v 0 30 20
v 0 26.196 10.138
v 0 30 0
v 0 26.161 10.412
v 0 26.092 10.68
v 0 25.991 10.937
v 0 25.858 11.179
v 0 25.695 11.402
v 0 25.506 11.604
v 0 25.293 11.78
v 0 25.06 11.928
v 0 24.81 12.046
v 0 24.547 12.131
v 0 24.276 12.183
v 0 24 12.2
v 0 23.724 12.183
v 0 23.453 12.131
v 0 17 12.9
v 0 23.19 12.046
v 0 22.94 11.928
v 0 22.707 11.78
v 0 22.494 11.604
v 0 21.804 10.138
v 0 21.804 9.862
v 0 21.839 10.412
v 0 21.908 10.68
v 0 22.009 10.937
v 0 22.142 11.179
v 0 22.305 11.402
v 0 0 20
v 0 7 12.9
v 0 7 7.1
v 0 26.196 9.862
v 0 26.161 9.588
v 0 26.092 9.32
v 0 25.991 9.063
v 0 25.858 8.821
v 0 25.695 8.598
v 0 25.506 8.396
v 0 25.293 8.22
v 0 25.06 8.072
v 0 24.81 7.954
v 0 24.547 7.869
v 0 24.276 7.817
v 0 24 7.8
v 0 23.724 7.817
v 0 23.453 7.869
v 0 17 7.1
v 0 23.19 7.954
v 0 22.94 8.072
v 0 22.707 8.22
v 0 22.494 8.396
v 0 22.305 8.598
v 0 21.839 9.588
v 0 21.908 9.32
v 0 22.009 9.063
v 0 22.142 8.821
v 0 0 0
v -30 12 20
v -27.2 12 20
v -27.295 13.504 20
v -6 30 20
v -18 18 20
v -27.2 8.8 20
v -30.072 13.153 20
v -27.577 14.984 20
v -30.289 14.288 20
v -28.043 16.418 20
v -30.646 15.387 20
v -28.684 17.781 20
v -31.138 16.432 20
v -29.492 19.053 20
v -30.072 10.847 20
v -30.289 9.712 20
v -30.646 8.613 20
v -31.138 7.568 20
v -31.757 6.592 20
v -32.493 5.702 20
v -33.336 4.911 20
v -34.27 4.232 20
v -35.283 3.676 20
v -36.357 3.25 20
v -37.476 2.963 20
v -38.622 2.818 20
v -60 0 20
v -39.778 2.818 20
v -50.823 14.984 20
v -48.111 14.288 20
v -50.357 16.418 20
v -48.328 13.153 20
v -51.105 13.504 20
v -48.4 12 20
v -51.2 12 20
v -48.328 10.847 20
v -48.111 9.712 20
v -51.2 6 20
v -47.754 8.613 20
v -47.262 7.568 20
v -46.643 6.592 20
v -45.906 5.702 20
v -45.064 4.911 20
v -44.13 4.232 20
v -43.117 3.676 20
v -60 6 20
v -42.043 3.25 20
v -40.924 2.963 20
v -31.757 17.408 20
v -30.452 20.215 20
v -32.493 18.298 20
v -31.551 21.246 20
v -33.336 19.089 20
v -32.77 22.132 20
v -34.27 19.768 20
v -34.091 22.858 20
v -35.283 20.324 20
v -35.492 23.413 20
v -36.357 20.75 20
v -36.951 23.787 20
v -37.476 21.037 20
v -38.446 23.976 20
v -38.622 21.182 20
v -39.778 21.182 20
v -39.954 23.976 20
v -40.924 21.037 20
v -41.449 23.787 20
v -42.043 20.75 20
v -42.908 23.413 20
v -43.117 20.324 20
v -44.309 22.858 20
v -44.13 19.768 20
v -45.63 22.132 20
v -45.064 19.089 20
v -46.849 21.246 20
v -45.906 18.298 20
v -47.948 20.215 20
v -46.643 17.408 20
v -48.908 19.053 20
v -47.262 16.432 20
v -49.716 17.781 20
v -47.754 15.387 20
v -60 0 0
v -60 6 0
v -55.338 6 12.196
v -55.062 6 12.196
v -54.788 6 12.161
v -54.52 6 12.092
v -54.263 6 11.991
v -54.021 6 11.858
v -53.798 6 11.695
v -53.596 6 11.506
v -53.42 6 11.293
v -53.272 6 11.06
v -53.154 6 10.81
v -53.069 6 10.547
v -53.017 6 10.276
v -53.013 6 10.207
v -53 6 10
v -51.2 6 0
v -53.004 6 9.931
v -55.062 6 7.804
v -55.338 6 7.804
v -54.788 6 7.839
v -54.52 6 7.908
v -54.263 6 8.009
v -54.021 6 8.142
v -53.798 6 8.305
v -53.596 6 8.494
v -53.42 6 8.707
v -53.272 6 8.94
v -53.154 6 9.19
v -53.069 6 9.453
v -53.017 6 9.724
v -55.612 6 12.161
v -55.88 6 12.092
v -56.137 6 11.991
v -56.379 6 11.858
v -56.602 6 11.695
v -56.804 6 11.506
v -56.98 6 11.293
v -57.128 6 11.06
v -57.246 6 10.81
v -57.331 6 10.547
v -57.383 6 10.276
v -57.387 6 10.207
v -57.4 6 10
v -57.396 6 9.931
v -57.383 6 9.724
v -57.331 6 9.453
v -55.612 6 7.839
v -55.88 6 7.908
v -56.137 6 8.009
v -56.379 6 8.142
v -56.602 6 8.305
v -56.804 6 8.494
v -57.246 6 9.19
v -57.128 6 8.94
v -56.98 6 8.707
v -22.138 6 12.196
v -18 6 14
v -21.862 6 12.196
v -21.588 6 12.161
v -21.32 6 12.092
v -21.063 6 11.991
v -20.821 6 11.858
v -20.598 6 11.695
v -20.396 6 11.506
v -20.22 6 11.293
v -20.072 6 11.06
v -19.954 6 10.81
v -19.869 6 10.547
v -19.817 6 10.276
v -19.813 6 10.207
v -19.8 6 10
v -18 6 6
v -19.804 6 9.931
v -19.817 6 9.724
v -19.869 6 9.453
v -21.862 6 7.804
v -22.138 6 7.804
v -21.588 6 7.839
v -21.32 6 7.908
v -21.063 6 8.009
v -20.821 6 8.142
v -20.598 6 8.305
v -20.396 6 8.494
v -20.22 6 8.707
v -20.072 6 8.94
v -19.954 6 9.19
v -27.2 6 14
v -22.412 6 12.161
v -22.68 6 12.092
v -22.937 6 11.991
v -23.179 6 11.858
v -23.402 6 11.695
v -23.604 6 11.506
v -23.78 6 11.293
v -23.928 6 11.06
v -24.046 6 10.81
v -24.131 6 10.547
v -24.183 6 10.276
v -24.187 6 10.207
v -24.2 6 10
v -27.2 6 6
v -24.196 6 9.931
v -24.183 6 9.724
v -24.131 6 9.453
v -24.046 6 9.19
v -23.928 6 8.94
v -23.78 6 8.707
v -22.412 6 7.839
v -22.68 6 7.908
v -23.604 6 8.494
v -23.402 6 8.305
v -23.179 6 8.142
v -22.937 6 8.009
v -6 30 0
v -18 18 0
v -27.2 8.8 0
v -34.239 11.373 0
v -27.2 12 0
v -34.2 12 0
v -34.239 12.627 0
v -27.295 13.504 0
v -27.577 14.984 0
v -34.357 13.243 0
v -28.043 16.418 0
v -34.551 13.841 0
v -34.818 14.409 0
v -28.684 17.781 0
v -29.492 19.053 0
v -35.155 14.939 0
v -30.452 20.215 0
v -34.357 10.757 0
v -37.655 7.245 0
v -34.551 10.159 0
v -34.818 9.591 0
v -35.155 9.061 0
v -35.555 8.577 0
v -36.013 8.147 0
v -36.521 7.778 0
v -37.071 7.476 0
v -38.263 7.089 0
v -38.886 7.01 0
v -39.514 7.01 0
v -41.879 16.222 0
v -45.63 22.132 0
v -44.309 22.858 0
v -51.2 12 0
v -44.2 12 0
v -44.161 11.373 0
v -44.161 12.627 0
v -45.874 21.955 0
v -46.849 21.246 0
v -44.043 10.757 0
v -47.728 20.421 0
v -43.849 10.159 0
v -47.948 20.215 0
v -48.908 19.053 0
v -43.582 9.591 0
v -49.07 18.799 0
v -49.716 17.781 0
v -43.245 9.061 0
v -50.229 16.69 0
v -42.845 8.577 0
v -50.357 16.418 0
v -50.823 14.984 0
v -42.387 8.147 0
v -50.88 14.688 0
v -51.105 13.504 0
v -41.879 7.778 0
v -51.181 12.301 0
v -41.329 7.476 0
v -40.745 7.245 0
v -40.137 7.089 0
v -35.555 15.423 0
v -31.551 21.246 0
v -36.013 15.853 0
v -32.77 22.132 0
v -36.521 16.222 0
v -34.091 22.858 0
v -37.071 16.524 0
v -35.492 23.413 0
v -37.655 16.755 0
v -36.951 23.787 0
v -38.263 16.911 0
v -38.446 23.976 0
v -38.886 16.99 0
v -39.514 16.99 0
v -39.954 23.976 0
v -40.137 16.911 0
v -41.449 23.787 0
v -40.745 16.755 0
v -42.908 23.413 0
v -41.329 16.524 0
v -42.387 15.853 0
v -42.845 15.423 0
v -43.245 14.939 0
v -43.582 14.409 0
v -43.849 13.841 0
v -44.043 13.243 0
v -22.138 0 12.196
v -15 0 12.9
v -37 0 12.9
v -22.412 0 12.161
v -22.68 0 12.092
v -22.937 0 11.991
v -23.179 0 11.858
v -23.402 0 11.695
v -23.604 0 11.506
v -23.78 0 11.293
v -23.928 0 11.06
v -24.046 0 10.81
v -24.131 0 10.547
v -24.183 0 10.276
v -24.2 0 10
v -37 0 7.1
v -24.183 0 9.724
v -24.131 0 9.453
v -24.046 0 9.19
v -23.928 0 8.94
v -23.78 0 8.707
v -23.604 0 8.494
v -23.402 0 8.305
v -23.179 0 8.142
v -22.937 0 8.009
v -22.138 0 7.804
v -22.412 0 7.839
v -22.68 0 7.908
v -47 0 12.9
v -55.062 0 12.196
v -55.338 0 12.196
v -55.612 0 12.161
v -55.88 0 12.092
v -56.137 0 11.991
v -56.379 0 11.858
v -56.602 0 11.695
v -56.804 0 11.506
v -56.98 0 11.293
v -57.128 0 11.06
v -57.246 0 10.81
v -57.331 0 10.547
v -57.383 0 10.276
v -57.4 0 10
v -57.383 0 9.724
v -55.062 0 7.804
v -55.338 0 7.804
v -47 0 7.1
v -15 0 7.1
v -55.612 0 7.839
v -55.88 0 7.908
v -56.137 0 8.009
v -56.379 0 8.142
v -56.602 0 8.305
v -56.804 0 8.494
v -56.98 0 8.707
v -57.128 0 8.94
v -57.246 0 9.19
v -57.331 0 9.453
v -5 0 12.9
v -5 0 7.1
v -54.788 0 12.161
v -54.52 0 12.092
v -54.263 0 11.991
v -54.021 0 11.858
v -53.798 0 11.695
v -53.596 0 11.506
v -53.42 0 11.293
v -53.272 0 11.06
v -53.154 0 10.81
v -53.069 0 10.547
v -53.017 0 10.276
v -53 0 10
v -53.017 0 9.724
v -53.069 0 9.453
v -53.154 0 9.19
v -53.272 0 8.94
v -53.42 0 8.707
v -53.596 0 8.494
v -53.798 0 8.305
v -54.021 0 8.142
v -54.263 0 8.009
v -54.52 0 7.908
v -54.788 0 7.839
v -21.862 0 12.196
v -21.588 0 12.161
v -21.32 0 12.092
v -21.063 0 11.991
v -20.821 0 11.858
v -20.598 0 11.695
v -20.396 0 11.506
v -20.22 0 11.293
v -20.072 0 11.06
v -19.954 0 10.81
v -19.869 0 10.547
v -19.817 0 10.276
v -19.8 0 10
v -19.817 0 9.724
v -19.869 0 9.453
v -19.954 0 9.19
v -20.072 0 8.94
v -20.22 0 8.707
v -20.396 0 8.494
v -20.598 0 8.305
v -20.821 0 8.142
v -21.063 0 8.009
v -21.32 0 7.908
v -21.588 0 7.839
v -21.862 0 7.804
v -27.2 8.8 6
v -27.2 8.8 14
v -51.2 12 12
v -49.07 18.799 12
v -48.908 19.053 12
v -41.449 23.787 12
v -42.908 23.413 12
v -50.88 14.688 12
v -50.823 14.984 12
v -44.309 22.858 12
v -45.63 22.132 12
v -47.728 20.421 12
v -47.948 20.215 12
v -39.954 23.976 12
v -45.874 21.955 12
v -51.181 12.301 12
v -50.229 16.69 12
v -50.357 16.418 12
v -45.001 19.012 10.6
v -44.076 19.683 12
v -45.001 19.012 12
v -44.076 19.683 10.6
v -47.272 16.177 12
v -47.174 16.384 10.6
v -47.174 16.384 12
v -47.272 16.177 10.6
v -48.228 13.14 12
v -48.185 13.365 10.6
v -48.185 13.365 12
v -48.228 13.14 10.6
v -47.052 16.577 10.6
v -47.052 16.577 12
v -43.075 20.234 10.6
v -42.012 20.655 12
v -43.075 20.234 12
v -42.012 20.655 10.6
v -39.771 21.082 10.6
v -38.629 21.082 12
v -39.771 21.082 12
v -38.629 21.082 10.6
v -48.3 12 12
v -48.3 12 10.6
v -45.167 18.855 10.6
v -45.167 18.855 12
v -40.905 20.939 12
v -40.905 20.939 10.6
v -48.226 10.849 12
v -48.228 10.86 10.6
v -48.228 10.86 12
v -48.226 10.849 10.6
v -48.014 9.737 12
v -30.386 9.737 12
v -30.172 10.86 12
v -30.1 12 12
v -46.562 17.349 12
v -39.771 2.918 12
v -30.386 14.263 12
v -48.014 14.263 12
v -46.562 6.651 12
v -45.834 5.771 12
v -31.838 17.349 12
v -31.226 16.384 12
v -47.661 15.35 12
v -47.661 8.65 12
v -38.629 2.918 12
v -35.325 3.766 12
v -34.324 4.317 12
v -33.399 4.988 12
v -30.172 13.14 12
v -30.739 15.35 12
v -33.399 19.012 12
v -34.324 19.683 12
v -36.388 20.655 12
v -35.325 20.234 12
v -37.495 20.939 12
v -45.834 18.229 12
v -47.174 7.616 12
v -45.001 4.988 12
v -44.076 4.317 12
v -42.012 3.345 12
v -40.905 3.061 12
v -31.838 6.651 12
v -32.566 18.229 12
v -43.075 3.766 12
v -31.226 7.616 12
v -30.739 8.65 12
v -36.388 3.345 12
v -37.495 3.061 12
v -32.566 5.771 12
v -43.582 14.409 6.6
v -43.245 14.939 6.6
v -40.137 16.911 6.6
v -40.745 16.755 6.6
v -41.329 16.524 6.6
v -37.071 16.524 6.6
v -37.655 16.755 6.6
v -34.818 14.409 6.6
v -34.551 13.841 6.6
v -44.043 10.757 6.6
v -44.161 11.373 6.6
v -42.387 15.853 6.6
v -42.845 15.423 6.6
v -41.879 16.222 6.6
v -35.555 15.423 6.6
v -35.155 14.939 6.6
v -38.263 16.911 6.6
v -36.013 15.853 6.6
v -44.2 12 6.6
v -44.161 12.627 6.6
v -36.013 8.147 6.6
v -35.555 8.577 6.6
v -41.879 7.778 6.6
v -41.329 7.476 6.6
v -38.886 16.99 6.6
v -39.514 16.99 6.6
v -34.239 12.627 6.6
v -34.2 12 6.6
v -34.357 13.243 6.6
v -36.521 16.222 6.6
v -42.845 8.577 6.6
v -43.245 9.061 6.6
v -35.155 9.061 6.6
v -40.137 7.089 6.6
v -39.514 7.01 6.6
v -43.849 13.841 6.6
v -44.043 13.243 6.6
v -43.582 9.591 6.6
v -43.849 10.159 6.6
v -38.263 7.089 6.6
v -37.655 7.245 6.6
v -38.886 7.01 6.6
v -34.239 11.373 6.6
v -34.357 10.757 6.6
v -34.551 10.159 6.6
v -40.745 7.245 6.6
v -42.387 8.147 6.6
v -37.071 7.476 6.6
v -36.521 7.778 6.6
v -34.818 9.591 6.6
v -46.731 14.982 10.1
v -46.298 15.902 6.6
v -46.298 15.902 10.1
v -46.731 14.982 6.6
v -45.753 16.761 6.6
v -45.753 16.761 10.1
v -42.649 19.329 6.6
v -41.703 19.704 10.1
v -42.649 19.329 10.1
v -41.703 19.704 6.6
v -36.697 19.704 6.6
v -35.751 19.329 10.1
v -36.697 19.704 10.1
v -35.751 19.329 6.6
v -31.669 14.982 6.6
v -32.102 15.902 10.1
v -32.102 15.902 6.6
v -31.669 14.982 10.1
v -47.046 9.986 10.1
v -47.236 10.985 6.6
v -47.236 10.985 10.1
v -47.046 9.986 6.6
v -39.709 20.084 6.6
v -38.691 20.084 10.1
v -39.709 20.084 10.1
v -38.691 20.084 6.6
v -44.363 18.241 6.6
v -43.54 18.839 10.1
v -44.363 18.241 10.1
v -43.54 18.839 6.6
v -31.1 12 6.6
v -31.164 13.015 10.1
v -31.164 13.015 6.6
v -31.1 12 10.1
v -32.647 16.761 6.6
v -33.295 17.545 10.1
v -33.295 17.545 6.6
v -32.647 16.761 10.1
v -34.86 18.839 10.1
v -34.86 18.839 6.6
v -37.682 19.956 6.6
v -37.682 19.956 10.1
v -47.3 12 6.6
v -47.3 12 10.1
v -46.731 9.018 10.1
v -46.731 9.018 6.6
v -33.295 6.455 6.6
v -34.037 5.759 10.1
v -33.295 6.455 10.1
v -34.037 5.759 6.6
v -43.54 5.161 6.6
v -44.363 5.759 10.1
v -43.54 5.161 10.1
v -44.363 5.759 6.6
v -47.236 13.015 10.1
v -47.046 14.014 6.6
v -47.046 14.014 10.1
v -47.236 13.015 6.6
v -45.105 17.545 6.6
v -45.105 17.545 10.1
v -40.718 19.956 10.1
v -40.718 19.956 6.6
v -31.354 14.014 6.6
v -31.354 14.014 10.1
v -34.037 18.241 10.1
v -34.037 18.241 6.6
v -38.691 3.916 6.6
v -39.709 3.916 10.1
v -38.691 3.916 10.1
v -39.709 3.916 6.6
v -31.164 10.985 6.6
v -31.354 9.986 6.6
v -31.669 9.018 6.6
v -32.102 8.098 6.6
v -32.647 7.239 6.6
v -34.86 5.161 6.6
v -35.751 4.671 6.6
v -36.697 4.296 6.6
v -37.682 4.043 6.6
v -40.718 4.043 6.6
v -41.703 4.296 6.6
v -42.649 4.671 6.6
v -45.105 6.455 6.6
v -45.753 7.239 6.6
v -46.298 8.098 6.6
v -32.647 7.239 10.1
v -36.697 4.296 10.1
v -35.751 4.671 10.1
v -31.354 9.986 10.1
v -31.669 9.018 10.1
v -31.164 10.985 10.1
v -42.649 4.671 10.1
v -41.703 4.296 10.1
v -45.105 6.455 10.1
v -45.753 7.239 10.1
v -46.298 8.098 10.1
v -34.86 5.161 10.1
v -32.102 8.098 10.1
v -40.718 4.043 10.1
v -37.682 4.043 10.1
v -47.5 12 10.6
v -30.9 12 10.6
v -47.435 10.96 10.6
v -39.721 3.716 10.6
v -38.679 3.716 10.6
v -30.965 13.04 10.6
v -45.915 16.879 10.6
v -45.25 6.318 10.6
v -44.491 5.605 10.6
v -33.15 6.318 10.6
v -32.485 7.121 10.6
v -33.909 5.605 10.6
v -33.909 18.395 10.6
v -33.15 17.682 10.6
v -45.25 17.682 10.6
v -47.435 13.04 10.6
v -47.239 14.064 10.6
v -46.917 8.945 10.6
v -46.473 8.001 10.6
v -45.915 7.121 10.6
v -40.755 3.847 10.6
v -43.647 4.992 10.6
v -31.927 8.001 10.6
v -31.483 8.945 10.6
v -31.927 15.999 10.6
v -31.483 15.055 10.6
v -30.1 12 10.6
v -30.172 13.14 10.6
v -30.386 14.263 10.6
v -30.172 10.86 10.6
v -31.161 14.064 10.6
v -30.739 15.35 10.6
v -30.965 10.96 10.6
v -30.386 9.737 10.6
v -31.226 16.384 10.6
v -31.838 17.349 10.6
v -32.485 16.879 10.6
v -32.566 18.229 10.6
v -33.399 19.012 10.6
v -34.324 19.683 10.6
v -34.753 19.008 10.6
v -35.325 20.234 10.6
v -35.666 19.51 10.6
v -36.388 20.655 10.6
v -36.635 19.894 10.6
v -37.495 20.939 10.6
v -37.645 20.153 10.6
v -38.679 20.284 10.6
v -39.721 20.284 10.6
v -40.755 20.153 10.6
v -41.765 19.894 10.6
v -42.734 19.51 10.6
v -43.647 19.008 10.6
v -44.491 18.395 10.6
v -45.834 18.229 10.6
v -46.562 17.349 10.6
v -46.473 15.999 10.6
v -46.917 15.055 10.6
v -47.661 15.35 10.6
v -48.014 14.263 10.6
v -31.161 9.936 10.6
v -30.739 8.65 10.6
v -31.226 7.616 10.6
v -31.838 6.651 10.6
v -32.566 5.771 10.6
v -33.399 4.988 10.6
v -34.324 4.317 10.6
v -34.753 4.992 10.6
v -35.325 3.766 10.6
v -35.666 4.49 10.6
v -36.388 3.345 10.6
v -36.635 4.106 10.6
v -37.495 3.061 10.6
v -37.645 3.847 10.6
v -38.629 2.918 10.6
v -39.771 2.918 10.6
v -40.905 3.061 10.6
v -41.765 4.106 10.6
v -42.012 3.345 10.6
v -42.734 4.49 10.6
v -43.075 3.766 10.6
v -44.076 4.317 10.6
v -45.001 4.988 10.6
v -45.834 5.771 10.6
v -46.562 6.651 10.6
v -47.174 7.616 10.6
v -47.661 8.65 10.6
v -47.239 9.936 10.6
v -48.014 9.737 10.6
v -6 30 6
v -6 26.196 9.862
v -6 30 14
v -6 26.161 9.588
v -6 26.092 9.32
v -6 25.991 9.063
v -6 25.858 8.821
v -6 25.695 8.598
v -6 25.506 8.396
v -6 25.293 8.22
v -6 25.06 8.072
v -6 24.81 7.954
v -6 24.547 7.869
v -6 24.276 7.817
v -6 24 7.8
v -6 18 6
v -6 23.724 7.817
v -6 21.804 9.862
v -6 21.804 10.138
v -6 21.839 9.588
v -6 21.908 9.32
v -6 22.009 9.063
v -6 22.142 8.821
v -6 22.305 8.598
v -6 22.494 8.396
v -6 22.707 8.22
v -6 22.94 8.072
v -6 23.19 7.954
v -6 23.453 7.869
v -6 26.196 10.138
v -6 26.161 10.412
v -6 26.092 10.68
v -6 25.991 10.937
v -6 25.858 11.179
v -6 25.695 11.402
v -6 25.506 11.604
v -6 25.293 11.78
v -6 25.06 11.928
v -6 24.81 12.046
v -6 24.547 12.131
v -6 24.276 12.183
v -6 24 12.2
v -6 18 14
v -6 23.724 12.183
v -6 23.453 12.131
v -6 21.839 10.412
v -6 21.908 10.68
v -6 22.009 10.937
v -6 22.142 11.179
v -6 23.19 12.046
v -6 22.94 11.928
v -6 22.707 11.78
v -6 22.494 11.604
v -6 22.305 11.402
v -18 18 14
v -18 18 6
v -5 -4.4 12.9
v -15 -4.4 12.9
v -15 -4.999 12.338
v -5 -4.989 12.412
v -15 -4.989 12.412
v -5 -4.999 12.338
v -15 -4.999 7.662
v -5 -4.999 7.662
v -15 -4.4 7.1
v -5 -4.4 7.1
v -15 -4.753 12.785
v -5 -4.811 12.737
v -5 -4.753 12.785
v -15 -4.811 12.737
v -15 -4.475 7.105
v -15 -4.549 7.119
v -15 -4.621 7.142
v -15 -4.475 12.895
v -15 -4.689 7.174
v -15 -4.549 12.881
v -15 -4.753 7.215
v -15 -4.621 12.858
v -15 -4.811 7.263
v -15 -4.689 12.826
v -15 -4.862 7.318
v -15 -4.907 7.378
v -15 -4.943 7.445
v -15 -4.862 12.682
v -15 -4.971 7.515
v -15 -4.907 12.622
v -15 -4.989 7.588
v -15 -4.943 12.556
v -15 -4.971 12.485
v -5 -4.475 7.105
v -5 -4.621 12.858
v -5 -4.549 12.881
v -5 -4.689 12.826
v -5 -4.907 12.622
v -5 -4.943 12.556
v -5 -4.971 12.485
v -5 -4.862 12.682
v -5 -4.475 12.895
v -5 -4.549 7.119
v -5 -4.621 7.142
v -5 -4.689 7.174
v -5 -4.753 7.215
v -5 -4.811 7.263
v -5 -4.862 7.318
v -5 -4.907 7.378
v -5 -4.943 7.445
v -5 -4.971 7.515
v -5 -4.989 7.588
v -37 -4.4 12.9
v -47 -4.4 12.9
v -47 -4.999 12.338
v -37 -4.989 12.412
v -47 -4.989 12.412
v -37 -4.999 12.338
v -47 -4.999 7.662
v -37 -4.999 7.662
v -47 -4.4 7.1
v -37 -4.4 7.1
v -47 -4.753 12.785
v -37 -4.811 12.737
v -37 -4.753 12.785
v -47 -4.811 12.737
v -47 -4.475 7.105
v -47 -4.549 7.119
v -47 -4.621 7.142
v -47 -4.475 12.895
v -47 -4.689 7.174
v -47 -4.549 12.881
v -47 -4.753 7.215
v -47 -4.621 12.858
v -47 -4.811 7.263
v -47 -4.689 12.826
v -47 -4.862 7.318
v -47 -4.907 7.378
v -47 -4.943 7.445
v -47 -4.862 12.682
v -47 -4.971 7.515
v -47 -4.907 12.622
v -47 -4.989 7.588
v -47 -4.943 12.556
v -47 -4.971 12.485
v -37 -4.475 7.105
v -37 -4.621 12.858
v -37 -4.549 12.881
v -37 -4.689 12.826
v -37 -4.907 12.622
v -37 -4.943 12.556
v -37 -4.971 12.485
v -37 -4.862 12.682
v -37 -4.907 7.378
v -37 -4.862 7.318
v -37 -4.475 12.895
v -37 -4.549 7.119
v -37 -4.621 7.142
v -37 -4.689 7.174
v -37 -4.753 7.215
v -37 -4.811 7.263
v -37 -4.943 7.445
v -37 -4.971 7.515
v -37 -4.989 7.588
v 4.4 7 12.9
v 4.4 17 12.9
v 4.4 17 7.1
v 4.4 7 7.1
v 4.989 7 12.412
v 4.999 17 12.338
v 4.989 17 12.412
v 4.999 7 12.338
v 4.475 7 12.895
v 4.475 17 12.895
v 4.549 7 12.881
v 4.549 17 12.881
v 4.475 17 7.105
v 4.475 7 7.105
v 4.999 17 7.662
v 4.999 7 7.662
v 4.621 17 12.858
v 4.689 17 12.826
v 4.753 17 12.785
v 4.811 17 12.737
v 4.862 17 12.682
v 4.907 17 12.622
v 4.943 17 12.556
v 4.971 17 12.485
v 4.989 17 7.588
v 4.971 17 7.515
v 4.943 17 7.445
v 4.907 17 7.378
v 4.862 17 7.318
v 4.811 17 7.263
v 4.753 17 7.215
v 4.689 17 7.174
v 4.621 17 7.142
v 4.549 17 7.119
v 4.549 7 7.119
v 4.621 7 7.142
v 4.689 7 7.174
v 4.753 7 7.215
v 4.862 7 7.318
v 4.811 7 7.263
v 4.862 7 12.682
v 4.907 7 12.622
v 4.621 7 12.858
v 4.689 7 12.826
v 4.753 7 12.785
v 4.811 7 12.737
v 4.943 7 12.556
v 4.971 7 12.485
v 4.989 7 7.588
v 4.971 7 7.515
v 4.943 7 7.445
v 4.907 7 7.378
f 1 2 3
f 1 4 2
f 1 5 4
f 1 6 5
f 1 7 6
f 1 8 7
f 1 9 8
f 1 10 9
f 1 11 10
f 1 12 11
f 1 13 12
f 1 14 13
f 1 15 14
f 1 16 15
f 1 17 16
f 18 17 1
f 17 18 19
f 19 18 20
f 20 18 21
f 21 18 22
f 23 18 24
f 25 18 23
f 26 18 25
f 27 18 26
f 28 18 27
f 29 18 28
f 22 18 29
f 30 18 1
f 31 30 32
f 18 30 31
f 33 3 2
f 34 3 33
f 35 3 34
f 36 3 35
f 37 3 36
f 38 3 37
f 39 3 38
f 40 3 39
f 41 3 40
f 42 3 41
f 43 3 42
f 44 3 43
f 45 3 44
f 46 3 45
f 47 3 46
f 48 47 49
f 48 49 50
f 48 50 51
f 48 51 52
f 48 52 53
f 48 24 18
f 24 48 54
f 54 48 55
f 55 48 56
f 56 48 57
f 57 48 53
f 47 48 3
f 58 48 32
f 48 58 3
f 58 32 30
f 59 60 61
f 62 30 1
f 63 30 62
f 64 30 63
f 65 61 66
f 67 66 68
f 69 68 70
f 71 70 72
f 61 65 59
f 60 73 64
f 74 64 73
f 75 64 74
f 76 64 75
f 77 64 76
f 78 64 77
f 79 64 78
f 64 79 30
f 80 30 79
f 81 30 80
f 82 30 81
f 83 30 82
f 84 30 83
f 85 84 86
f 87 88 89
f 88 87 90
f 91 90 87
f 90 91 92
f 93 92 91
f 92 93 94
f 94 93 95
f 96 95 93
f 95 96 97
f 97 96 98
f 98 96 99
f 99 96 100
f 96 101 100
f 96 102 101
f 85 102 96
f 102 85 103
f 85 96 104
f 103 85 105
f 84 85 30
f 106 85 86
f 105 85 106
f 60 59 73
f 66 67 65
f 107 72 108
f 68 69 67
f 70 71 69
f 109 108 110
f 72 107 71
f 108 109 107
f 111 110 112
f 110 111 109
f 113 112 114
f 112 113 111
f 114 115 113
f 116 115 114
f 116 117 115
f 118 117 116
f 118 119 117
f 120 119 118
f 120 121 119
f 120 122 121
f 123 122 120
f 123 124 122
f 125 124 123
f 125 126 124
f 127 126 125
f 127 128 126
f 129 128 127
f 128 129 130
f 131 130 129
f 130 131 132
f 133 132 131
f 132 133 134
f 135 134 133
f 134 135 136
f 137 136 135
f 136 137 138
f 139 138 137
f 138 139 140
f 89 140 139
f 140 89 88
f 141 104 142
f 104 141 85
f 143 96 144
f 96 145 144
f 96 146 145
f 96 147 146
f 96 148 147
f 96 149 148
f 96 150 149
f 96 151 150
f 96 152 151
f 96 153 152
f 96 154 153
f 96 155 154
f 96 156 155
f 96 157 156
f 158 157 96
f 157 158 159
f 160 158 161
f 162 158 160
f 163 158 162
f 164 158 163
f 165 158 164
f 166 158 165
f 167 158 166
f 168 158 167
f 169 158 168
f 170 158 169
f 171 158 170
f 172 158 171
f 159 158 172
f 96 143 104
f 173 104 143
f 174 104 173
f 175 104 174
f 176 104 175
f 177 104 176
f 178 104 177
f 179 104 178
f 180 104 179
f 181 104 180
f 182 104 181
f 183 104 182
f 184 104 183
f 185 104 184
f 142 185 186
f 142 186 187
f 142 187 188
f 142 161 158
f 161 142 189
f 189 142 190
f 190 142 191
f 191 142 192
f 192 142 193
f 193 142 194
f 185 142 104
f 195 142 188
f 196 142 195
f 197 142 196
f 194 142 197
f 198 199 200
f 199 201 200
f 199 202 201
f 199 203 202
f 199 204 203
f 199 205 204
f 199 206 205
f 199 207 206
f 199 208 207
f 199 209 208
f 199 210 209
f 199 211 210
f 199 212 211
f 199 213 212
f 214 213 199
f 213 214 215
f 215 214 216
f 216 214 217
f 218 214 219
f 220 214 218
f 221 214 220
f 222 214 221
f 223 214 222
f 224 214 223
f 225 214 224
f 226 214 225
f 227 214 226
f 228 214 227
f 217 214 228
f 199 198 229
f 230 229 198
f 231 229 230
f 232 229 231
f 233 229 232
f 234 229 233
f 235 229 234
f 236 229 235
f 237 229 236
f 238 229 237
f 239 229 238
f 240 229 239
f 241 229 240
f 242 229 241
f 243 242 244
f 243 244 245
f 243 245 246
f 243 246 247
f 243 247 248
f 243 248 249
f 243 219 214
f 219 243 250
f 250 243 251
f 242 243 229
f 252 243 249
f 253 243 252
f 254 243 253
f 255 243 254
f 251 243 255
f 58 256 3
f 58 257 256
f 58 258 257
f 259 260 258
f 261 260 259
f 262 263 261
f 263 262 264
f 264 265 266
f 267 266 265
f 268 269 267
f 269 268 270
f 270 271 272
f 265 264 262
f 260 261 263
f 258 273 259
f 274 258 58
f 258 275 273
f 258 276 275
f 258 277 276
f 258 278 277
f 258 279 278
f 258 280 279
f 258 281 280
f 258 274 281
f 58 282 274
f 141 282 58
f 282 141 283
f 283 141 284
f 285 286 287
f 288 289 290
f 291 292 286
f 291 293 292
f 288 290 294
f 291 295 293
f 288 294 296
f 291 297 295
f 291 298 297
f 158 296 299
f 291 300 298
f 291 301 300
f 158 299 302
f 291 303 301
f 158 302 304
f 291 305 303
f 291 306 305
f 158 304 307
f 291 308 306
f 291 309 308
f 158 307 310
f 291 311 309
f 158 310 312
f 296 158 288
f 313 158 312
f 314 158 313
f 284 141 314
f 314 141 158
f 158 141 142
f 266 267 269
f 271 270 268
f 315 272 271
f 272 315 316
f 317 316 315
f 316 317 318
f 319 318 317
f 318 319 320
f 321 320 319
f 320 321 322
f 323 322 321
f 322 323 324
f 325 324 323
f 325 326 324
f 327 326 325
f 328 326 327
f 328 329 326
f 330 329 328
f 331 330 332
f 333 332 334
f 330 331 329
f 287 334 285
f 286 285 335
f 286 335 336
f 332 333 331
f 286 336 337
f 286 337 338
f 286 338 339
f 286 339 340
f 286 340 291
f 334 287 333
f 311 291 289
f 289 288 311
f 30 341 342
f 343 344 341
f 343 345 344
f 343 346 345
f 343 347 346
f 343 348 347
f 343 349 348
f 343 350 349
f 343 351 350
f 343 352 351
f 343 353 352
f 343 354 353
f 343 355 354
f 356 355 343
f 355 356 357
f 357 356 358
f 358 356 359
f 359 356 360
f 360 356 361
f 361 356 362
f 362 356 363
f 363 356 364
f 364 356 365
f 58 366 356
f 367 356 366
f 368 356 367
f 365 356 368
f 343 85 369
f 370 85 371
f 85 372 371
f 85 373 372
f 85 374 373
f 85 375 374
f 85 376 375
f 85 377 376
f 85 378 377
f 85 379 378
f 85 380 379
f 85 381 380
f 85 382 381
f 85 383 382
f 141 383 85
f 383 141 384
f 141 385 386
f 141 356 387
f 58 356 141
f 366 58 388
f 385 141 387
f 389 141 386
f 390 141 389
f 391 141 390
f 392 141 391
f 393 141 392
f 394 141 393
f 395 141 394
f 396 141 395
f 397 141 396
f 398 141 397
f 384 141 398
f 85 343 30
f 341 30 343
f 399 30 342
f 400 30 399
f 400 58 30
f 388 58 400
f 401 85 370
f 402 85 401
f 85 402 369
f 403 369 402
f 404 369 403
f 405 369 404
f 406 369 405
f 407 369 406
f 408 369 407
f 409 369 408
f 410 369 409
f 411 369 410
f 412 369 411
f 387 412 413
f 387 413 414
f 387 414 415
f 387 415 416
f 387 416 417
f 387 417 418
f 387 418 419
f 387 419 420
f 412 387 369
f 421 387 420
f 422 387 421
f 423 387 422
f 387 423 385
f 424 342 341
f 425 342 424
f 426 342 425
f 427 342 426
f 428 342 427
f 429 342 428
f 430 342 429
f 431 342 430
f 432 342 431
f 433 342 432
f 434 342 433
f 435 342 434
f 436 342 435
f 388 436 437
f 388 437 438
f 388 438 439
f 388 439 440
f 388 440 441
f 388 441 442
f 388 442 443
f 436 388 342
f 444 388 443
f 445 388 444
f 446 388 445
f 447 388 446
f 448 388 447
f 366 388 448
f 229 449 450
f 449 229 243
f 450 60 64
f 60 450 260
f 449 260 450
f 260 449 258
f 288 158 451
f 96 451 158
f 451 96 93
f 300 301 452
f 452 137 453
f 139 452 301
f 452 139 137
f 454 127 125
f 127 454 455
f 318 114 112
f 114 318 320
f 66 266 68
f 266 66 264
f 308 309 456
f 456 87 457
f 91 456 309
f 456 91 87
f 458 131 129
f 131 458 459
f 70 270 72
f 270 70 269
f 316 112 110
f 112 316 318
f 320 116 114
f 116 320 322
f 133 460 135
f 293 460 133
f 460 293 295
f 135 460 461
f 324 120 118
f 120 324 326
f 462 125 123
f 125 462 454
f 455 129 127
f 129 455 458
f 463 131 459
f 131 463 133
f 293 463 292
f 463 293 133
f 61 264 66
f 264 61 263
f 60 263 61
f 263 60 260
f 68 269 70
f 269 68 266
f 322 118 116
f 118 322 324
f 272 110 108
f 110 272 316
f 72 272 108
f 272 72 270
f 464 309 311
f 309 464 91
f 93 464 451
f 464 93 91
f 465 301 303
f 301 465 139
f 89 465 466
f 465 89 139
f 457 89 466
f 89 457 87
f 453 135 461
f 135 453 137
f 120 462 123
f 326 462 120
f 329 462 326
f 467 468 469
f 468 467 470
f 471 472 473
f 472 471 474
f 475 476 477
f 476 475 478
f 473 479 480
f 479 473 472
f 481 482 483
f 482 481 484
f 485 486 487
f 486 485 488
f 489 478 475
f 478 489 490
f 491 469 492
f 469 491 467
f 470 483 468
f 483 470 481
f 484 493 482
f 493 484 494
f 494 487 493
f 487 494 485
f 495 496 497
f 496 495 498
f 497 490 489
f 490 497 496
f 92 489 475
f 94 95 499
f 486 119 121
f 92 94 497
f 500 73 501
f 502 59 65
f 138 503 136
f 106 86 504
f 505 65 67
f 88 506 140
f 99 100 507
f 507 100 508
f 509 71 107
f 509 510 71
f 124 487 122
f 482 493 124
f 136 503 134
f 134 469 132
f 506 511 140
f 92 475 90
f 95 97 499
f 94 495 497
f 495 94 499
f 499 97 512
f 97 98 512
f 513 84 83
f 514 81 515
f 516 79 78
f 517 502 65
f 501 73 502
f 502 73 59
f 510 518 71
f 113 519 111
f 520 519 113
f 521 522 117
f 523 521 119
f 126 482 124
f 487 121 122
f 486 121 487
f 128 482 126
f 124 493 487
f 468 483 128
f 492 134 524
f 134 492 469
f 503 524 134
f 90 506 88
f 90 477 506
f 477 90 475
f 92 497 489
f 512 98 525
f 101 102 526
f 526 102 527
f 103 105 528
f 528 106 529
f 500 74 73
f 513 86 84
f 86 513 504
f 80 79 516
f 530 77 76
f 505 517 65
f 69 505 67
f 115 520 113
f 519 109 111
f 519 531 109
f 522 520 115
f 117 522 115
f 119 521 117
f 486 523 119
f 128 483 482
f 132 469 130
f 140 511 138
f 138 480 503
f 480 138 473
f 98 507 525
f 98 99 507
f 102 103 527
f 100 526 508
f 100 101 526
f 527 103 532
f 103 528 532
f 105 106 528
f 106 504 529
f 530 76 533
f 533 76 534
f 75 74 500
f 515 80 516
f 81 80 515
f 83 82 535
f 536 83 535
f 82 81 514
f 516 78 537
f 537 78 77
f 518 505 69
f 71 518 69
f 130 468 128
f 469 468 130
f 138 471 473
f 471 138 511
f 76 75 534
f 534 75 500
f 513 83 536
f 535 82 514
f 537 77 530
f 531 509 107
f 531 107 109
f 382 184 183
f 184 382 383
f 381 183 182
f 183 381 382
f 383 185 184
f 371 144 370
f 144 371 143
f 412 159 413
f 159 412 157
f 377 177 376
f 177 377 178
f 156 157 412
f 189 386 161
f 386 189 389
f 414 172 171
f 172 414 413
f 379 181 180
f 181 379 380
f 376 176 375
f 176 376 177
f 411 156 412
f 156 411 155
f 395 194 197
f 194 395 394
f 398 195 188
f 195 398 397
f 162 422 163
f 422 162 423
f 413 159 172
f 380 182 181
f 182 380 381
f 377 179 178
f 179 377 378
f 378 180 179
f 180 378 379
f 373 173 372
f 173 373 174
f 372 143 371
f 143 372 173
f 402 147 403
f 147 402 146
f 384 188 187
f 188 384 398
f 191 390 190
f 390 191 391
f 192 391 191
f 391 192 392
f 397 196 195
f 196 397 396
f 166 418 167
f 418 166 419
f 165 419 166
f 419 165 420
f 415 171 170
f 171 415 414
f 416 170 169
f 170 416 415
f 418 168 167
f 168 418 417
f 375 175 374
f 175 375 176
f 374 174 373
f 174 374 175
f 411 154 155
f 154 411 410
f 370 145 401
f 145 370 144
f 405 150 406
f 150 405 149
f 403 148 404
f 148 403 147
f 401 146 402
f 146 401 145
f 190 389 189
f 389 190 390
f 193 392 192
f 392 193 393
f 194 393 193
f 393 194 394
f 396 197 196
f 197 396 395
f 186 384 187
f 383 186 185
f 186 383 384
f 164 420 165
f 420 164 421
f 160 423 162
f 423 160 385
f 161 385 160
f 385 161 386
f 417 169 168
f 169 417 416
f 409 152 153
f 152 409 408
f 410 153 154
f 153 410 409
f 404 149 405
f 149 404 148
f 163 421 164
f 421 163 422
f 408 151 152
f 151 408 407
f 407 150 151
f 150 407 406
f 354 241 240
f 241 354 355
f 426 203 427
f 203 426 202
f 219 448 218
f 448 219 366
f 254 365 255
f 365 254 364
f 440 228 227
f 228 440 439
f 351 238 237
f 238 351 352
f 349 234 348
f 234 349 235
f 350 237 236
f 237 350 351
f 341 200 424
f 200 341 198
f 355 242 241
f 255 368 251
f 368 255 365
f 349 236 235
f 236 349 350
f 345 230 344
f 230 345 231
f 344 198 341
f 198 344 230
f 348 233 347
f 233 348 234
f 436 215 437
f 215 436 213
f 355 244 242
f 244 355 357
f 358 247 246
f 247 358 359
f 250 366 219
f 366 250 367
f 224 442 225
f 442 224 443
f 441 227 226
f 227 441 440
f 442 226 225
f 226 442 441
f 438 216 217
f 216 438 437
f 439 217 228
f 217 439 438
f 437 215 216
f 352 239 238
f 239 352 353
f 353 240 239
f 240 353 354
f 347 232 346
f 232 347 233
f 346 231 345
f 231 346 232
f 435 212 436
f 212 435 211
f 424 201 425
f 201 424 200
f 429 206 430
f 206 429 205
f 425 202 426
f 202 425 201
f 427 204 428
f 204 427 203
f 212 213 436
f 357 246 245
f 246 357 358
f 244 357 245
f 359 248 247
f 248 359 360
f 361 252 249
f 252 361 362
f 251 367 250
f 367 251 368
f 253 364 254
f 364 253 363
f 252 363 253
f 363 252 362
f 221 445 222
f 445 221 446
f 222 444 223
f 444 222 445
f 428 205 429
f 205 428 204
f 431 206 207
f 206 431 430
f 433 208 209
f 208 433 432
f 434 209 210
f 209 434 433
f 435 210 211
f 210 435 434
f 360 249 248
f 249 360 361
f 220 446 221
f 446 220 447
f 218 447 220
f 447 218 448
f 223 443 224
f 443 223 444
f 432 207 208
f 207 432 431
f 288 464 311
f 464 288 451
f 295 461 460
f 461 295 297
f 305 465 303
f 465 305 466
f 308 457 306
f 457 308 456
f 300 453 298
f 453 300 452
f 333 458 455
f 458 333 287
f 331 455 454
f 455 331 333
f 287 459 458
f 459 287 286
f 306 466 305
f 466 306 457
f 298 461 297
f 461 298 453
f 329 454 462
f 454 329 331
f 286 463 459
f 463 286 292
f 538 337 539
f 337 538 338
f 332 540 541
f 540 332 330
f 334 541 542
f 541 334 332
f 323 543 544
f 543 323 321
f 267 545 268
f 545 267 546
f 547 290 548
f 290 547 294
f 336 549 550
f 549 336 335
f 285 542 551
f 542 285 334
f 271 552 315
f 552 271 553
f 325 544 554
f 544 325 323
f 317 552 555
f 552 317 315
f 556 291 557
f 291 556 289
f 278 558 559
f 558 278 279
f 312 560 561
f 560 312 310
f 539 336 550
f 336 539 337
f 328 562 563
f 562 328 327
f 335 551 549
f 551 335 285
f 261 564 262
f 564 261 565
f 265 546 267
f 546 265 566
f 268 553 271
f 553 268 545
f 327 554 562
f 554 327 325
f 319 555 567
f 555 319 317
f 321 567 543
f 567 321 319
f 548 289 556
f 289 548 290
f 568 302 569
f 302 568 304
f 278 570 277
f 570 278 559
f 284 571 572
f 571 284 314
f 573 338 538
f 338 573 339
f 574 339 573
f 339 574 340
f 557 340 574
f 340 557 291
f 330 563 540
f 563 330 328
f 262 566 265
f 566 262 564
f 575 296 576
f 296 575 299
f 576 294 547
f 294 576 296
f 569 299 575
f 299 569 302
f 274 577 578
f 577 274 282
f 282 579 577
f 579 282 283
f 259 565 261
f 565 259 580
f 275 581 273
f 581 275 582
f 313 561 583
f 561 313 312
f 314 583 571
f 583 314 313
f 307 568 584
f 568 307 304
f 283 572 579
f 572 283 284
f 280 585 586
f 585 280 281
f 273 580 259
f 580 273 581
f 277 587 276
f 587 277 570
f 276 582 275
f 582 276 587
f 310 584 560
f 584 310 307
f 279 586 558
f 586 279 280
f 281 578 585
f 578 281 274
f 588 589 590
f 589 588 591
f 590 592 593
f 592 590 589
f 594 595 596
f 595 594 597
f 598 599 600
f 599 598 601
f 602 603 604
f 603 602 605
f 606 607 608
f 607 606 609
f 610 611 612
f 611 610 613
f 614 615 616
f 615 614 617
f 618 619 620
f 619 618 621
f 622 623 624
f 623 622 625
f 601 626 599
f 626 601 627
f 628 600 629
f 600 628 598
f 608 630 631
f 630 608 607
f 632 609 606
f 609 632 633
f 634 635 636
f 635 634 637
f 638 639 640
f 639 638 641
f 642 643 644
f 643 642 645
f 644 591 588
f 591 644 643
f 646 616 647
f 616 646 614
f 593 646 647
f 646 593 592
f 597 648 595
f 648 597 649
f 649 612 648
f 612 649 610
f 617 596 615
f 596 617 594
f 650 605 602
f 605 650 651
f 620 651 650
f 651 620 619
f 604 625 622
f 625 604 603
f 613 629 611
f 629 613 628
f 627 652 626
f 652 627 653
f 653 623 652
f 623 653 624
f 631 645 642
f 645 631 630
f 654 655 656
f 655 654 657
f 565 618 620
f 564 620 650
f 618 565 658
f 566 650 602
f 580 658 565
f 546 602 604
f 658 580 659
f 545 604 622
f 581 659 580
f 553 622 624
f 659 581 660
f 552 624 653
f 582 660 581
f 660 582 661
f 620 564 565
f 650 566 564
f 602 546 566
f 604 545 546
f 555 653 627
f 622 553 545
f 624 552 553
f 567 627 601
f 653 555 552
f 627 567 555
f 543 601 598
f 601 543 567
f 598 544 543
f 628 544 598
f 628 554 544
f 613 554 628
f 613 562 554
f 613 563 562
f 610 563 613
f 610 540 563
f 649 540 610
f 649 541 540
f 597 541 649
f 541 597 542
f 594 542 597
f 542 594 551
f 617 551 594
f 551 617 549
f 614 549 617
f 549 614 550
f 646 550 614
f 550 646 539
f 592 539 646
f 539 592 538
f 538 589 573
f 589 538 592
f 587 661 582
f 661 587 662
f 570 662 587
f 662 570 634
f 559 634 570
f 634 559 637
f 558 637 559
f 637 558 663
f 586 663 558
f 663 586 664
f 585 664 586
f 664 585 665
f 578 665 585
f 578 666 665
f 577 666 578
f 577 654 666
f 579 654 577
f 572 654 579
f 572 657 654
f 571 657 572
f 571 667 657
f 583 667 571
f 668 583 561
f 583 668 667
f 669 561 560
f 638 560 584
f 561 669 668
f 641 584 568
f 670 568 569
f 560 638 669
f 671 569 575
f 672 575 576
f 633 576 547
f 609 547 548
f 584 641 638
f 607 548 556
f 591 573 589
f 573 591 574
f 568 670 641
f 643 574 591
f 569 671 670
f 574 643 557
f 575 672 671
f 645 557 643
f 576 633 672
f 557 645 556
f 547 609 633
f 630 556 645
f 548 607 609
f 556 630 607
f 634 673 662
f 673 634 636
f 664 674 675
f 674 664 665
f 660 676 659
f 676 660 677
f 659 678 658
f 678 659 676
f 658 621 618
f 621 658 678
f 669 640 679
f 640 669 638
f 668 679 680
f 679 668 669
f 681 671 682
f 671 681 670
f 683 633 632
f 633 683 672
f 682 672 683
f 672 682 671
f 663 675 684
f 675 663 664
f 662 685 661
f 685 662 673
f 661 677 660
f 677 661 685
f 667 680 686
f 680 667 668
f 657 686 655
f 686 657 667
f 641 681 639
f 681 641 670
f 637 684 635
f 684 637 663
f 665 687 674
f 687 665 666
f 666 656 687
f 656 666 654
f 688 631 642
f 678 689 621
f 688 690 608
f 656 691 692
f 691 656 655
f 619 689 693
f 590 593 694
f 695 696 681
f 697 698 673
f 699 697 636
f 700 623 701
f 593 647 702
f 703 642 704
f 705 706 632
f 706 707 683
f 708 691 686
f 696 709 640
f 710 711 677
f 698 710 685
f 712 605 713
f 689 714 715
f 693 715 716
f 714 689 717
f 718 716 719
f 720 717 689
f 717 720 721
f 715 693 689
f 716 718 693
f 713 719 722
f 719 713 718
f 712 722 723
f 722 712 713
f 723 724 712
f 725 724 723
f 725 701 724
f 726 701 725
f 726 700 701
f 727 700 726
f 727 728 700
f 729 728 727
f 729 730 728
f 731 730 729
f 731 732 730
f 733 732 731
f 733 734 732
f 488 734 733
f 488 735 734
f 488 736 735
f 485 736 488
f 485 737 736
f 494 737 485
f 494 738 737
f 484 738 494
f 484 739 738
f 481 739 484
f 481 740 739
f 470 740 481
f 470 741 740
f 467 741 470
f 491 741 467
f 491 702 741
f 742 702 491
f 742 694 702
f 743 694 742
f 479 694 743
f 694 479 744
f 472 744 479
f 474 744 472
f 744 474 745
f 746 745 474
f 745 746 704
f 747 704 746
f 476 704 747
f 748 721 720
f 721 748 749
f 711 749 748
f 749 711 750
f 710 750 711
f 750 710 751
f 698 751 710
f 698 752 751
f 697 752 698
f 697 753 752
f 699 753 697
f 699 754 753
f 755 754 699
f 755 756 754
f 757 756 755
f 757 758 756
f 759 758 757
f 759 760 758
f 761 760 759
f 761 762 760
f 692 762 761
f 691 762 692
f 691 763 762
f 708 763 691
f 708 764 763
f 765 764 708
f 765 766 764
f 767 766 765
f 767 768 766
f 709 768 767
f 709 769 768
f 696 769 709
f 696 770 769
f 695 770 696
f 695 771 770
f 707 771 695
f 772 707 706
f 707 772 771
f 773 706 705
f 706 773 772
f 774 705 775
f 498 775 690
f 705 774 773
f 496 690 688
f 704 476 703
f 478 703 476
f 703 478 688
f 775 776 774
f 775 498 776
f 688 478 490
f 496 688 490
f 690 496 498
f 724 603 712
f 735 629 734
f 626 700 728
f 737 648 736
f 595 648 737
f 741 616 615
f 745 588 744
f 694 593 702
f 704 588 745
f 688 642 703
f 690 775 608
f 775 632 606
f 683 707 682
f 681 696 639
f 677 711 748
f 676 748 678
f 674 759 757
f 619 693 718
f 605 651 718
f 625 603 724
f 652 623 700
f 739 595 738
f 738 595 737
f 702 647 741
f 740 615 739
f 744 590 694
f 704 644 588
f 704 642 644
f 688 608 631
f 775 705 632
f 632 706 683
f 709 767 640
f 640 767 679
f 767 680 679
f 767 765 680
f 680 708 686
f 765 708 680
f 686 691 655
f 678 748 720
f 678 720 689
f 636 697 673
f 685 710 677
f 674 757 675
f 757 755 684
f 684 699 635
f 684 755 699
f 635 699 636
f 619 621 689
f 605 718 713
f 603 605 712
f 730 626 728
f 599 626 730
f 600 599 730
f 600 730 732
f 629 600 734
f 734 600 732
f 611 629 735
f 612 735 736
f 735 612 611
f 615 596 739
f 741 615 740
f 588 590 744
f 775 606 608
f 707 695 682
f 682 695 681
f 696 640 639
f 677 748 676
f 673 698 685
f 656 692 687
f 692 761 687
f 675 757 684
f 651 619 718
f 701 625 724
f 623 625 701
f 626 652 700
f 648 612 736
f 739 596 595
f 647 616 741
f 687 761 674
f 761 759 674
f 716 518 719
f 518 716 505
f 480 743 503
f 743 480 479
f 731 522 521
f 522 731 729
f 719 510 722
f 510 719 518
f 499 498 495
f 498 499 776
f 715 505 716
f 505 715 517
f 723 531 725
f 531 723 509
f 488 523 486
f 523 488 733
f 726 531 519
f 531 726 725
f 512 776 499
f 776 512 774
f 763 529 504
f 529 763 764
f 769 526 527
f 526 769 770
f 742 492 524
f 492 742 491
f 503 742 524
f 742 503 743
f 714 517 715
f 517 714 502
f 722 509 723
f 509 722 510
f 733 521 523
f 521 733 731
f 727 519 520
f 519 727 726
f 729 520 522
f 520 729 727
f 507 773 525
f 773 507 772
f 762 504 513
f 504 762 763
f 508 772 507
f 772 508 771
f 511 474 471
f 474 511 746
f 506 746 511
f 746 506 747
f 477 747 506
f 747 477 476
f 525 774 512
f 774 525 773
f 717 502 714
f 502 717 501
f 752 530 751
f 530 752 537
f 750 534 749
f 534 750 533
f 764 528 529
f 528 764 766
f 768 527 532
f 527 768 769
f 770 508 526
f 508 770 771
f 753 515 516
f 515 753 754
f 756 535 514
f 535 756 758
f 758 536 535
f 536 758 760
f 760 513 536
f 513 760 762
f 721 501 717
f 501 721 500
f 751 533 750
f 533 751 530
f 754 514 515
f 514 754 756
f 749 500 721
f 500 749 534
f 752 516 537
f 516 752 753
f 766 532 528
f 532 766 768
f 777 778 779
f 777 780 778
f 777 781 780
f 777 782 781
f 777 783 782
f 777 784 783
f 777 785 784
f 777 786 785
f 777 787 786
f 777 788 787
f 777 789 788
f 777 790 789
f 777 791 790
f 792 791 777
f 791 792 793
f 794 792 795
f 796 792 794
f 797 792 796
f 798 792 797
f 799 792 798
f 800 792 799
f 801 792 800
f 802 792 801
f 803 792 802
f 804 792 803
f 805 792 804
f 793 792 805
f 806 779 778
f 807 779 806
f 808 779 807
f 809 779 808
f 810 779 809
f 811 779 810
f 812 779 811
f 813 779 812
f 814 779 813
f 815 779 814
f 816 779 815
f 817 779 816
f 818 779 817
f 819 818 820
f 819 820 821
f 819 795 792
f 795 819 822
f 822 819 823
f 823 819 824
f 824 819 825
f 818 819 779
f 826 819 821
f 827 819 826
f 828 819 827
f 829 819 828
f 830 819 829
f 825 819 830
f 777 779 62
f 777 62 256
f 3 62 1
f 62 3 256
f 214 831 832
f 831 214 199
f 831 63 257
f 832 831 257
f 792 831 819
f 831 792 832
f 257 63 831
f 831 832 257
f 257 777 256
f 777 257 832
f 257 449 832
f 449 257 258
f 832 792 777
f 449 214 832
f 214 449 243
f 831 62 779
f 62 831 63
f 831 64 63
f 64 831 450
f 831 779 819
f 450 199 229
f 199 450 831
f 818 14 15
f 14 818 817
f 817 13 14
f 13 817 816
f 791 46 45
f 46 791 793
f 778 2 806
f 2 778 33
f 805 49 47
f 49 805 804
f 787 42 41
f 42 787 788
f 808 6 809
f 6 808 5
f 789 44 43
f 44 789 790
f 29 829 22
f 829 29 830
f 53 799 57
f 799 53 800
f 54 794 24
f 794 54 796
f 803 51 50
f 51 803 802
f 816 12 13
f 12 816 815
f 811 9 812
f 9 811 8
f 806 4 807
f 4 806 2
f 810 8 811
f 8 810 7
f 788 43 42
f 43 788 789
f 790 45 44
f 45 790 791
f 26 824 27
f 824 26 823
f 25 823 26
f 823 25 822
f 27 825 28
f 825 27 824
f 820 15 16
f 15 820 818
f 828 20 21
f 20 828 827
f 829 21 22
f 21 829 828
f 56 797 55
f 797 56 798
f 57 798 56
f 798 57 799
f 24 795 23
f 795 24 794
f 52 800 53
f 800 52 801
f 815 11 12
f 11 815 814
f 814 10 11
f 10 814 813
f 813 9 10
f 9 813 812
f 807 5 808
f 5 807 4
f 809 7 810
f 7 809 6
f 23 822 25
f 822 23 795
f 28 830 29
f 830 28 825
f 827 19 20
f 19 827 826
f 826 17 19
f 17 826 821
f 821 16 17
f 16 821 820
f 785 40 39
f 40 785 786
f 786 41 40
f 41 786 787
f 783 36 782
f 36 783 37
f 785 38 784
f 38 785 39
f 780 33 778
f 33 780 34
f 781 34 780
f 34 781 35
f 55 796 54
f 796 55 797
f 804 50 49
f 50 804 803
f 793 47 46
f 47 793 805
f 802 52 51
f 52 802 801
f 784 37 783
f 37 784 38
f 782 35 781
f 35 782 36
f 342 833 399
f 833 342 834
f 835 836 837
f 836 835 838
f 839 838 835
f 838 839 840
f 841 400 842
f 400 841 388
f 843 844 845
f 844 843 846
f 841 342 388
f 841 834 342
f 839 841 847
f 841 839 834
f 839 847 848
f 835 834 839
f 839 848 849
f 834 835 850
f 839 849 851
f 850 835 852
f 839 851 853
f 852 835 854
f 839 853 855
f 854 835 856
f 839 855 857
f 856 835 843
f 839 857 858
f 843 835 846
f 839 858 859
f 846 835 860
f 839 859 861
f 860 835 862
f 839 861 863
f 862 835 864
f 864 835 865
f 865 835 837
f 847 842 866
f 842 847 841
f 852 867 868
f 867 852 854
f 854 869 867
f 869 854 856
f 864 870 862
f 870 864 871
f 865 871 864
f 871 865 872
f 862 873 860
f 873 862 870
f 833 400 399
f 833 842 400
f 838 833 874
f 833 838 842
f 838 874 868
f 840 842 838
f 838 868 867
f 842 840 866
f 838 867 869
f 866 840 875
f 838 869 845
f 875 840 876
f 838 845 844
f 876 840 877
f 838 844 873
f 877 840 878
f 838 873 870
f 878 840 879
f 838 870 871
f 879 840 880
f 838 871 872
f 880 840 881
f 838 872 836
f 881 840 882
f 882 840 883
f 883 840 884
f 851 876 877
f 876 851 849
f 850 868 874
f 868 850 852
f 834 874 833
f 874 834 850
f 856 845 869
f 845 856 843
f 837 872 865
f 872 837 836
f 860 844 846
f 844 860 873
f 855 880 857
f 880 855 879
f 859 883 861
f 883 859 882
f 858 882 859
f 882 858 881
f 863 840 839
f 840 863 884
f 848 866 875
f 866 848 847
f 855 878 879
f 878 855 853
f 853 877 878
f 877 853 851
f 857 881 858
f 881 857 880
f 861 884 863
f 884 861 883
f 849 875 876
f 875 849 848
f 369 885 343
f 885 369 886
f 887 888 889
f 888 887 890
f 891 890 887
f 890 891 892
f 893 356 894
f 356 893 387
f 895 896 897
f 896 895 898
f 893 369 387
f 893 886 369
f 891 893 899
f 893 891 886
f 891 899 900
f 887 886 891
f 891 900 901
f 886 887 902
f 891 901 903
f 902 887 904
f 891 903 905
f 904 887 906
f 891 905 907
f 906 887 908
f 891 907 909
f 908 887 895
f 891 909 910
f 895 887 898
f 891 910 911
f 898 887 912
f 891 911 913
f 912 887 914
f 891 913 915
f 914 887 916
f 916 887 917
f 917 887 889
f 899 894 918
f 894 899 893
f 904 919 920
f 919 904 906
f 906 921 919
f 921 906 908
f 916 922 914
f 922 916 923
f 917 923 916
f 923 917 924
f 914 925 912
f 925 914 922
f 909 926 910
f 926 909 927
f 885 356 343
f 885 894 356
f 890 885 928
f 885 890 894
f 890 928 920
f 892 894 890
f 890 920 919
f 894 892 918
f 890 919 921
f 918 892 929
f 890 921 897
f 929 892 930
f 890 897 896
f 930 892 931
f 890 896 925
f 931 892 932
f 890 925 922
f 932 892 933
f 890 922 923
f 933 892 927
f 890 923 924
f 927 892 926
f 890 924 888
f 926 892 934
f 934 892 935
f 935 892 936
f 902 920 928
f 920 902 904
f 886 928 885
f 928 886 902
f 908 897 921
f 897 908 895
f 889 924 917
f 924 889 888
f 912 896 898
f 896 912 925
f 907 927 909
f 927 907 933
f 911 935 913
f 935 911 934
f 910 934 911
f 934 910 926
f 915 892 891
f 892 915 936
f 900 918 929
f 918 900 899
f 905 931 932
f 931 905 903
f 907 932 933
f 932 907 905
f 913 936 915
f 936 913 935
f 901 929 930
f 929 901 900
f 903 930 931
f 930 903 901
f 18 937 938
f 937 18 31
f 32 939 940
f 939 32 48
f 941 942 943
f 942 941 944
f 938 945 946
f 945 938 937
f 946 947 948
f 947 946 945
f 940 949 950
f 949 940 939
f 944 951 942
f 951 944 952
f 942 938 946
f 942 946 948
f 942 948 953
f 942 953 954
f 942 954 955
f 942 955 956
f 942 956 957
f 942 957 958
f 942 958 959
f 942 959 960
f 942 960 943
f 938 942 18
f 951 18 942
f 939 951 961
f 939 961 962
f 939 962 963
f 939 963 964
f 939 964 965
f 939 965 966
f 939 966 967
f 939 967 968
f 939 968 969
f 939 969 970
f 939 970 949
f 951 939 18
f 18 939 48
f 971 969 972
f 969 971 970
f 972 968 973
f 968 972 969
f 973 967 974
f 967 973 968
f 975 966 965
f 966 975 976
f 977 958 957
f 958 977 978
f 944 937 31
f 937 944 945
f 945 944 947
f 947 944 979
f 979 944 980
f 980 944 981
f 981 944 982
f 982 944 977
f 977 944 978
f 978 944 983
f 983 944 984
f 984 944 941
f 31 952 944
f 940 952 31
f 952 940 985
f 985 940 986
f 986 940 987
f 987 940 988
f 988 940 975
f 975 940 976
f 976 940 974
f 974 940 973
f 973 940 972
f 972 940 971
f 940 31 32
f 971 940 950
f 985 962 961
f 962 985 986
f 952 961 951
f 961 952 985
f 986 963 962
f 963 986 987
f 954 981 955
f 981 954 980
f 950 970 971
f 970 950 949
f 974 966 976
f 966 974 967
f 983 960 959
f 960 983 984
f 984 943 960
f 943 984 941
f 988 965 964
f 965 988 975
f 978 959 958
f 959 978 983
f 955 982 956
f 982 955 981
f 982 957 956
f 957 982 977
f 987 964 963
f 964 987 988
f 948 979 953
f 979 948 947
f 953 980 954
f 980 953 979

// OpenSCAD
// file: ../lib/nutsnbolts/data-access.scad
// Norm Nuts and Bolts - a OpenSCAD library
// Copyright (C) 2012  Johannes Kneer

// This program is free software: you can redistribute it and/or modify
// it under the terms of the GNU General Public License as published by
// the Free Software Foundation, either version 3 of the License, or
// (at your option) any later version.

// This program is distributed in the hope that it will be useful,
// but WITHOUT ANY WARRANTY; without even the implied warranty of
// MERCHANTABILITY or FITNESS FOR A PARTICULAR PURPOSE.  See the
// GNU General Public License for more details.

// You should have received a copy of the GNU General Public License
// along with this program.  If not, see <http://www.gnu.org/licenses/>.


// DATABASE ACCESS FUNCTIONS AND CONSTANTS



// == CONSTANTS ==

// screw table access keys
_NB_S_DESC            = 0;
_NB_S_FAMKEY			    = 1;
_NB_S_LENGTH          = 2;
_NB_S_NOTHREAD_LENGTH = 3;

_NB_F_DESC			      = 0;
_NB_F_OUTER_DIA       = 1;
_NB_F_INNER_DIA       = 2;
_NB_F_LEAD            = 3;
_NB_F_KEY             = 4;
_NB_F_KEY_DEPTH       = 5;
_NB_F_HEAD_HEIGHT     = 6;
_NB_F_HEAD_DIA        = 7;
_NB_F_NUT_KEY         = 8;
_NB_F_NUT_HEIGHT      = 9;
_NB_F_PITCH_FINE      = 10;
_NB_F_PITCH_MEDIUM    = 11;
_NB_F_PITCH_COARSE    = 12;


// == FUNCTIONS ==

// _get_screw("descriptor")   with descriptor = M8x25
//   find the line for a general object in the data matrix

function _get_screw(n) = data_screw[search([n], data_screw)[0]];
function _get_screw_fam(n) = data_screw_fam[search([_get_screw(n)[_NB_S_FAMKEY]], data_screw_fam)[0]];

function _get_fam(n) = data_screw_fam[search([n], data_screw_fam)[0]];


// _get_XXXXX("descriptor") functions
// find a single property in the database

function _get_desc(n)        = _get_screw(n)[_NB_S_DESC];
function _get_famkey(n)         = _get_screw(n)[_NB_S_FAMKEY];
function _get_length(n)      = _get_screw(n)[_NB_S_LENGTH];
function _get_nt_length(n)   = _get_screw(n)[_NB_S_NOTHREAD_LENGTH];

function _get_outer_dia(n)   = _get_screw_fam(n)[_NB_F_OUTER_DIA];
function _get_inner_dia(n)   = _get_screw_fam(n)[_NB_F_INNER_DIA];
function _get_lead(n)        = _get_screw_fam(n)[_NB_F_LEAD];
function _get_head_height(n) = _get_screw_fam(n)[_NB_F_HEAD_HEIGHT];
function _get_head_dia(n)    = _get_screw_fam(n)[_NB_F_HEAD_DIA];
function _get_nut_key(n)     = _get_screw_fam(n)[_NB_F_NUT_KEY];
function _get_nut_height(n)  = _get_screw_fam(n)[_NB_F_NUT_HEIGHT];
function _get_fine_pitch(n)  = _get_screw_fam(n)[_NB_F_PITCH_FINE];
function _get_medium_pitch(n)  = _get_screw_fam(n)[_NB_F_PITCH_MEDIUM];
function _get_coarse_pitch(n)  = _get_screw_fam(n)[_NB_F_PITCH_COARSE];
// file: ../globals.scad
// Global variables

$fn = 50;
clearance = 0.4; // Nozzle width
// file: f688zz.scad
include <../globals.scad>;

module f688zz_mount()
{
    difference(){
        cylinder(d=24,h=12);
        cylinder(d=10,h=12);
        translate([0,0,7-clearance])cylinder(d=16+clearance/2,h=12);
        translate([0,0,10.3-clearance/2])cylinder(d1=16+clearance/2,d2=16.4+clearance/2,h=0.5);
        translate([0,0,10.8-clearance/2])cylinder(d=18+clearance/2,h=12);
    }
} 
// main file
include <f688zz.scad>
include <../lib/nutsnbolts/cyl_head_bolt.scad>;

module gantry_x_back_right()
{
    mirror([1,0,0]){
        difference(){
            union(){
                cube([60,6,20]);
                translate([27.2,0,0])cube([24,12,20]);
                translate([39.2,12,0])cylinder(d=24,h=20);
            }
            translate([39.2,12,0])cylinder(d=18+clearance/2,h=12);
            translate([39.2,12,12])cylinder(d1=18+clearance/2,d2=18+clearance,h=8);
            translate([55.2,0,10])rotate([90,0,0])hole_through("M4",l=8, cld=clearance);
            translate([22,0,10])rotate([90,0,0])hole_through("M4",l=8, cld=clearance);
        }
        translate([39.2,12,0])f688zz_mount();
        
        intersection(){
            difference(){
                union(){
                    cube([6,30,20]);
                    cube([18,18,20]);
                    translate([6,-18,0])rotate([0,0,45])cube([24*sqrt(2),24*sqrt(2),6]);
                    translate([6,-18,14])rotate([0,0,45])cube([24*sqrt(2),24*sqrt(2),6]);
                }
                translate([0,24,10])rotate([0,-90,0])hole_through("M4",l=8, cld=clearance);
            }
            cube([27.2,30,20]);
        }
    
        
        translate([15,-5,7.1])rotate([0,-90,0])translate([0.6,0.6,0])minkowski(){
            cube([4.6,4.4,9]);
            cylinder(d=1.2,h=1);
        }
        translate([47,-5,7.1])rotate([0,-90,0])translate([0.6,0.6,0])minkowski(){
            cube([4.6,4.4,9]);
            cylinder(d=1.2,h=1);
        }
        translate([0.6,17,7.1])rotate([0,-90,90])translate([0.6,0.6,0])minkowski(){
            cube([4.6,4.4,9]);
            cylinder(d=1.2,h=1);
        }
    }
}

gantry_x_back_right();
